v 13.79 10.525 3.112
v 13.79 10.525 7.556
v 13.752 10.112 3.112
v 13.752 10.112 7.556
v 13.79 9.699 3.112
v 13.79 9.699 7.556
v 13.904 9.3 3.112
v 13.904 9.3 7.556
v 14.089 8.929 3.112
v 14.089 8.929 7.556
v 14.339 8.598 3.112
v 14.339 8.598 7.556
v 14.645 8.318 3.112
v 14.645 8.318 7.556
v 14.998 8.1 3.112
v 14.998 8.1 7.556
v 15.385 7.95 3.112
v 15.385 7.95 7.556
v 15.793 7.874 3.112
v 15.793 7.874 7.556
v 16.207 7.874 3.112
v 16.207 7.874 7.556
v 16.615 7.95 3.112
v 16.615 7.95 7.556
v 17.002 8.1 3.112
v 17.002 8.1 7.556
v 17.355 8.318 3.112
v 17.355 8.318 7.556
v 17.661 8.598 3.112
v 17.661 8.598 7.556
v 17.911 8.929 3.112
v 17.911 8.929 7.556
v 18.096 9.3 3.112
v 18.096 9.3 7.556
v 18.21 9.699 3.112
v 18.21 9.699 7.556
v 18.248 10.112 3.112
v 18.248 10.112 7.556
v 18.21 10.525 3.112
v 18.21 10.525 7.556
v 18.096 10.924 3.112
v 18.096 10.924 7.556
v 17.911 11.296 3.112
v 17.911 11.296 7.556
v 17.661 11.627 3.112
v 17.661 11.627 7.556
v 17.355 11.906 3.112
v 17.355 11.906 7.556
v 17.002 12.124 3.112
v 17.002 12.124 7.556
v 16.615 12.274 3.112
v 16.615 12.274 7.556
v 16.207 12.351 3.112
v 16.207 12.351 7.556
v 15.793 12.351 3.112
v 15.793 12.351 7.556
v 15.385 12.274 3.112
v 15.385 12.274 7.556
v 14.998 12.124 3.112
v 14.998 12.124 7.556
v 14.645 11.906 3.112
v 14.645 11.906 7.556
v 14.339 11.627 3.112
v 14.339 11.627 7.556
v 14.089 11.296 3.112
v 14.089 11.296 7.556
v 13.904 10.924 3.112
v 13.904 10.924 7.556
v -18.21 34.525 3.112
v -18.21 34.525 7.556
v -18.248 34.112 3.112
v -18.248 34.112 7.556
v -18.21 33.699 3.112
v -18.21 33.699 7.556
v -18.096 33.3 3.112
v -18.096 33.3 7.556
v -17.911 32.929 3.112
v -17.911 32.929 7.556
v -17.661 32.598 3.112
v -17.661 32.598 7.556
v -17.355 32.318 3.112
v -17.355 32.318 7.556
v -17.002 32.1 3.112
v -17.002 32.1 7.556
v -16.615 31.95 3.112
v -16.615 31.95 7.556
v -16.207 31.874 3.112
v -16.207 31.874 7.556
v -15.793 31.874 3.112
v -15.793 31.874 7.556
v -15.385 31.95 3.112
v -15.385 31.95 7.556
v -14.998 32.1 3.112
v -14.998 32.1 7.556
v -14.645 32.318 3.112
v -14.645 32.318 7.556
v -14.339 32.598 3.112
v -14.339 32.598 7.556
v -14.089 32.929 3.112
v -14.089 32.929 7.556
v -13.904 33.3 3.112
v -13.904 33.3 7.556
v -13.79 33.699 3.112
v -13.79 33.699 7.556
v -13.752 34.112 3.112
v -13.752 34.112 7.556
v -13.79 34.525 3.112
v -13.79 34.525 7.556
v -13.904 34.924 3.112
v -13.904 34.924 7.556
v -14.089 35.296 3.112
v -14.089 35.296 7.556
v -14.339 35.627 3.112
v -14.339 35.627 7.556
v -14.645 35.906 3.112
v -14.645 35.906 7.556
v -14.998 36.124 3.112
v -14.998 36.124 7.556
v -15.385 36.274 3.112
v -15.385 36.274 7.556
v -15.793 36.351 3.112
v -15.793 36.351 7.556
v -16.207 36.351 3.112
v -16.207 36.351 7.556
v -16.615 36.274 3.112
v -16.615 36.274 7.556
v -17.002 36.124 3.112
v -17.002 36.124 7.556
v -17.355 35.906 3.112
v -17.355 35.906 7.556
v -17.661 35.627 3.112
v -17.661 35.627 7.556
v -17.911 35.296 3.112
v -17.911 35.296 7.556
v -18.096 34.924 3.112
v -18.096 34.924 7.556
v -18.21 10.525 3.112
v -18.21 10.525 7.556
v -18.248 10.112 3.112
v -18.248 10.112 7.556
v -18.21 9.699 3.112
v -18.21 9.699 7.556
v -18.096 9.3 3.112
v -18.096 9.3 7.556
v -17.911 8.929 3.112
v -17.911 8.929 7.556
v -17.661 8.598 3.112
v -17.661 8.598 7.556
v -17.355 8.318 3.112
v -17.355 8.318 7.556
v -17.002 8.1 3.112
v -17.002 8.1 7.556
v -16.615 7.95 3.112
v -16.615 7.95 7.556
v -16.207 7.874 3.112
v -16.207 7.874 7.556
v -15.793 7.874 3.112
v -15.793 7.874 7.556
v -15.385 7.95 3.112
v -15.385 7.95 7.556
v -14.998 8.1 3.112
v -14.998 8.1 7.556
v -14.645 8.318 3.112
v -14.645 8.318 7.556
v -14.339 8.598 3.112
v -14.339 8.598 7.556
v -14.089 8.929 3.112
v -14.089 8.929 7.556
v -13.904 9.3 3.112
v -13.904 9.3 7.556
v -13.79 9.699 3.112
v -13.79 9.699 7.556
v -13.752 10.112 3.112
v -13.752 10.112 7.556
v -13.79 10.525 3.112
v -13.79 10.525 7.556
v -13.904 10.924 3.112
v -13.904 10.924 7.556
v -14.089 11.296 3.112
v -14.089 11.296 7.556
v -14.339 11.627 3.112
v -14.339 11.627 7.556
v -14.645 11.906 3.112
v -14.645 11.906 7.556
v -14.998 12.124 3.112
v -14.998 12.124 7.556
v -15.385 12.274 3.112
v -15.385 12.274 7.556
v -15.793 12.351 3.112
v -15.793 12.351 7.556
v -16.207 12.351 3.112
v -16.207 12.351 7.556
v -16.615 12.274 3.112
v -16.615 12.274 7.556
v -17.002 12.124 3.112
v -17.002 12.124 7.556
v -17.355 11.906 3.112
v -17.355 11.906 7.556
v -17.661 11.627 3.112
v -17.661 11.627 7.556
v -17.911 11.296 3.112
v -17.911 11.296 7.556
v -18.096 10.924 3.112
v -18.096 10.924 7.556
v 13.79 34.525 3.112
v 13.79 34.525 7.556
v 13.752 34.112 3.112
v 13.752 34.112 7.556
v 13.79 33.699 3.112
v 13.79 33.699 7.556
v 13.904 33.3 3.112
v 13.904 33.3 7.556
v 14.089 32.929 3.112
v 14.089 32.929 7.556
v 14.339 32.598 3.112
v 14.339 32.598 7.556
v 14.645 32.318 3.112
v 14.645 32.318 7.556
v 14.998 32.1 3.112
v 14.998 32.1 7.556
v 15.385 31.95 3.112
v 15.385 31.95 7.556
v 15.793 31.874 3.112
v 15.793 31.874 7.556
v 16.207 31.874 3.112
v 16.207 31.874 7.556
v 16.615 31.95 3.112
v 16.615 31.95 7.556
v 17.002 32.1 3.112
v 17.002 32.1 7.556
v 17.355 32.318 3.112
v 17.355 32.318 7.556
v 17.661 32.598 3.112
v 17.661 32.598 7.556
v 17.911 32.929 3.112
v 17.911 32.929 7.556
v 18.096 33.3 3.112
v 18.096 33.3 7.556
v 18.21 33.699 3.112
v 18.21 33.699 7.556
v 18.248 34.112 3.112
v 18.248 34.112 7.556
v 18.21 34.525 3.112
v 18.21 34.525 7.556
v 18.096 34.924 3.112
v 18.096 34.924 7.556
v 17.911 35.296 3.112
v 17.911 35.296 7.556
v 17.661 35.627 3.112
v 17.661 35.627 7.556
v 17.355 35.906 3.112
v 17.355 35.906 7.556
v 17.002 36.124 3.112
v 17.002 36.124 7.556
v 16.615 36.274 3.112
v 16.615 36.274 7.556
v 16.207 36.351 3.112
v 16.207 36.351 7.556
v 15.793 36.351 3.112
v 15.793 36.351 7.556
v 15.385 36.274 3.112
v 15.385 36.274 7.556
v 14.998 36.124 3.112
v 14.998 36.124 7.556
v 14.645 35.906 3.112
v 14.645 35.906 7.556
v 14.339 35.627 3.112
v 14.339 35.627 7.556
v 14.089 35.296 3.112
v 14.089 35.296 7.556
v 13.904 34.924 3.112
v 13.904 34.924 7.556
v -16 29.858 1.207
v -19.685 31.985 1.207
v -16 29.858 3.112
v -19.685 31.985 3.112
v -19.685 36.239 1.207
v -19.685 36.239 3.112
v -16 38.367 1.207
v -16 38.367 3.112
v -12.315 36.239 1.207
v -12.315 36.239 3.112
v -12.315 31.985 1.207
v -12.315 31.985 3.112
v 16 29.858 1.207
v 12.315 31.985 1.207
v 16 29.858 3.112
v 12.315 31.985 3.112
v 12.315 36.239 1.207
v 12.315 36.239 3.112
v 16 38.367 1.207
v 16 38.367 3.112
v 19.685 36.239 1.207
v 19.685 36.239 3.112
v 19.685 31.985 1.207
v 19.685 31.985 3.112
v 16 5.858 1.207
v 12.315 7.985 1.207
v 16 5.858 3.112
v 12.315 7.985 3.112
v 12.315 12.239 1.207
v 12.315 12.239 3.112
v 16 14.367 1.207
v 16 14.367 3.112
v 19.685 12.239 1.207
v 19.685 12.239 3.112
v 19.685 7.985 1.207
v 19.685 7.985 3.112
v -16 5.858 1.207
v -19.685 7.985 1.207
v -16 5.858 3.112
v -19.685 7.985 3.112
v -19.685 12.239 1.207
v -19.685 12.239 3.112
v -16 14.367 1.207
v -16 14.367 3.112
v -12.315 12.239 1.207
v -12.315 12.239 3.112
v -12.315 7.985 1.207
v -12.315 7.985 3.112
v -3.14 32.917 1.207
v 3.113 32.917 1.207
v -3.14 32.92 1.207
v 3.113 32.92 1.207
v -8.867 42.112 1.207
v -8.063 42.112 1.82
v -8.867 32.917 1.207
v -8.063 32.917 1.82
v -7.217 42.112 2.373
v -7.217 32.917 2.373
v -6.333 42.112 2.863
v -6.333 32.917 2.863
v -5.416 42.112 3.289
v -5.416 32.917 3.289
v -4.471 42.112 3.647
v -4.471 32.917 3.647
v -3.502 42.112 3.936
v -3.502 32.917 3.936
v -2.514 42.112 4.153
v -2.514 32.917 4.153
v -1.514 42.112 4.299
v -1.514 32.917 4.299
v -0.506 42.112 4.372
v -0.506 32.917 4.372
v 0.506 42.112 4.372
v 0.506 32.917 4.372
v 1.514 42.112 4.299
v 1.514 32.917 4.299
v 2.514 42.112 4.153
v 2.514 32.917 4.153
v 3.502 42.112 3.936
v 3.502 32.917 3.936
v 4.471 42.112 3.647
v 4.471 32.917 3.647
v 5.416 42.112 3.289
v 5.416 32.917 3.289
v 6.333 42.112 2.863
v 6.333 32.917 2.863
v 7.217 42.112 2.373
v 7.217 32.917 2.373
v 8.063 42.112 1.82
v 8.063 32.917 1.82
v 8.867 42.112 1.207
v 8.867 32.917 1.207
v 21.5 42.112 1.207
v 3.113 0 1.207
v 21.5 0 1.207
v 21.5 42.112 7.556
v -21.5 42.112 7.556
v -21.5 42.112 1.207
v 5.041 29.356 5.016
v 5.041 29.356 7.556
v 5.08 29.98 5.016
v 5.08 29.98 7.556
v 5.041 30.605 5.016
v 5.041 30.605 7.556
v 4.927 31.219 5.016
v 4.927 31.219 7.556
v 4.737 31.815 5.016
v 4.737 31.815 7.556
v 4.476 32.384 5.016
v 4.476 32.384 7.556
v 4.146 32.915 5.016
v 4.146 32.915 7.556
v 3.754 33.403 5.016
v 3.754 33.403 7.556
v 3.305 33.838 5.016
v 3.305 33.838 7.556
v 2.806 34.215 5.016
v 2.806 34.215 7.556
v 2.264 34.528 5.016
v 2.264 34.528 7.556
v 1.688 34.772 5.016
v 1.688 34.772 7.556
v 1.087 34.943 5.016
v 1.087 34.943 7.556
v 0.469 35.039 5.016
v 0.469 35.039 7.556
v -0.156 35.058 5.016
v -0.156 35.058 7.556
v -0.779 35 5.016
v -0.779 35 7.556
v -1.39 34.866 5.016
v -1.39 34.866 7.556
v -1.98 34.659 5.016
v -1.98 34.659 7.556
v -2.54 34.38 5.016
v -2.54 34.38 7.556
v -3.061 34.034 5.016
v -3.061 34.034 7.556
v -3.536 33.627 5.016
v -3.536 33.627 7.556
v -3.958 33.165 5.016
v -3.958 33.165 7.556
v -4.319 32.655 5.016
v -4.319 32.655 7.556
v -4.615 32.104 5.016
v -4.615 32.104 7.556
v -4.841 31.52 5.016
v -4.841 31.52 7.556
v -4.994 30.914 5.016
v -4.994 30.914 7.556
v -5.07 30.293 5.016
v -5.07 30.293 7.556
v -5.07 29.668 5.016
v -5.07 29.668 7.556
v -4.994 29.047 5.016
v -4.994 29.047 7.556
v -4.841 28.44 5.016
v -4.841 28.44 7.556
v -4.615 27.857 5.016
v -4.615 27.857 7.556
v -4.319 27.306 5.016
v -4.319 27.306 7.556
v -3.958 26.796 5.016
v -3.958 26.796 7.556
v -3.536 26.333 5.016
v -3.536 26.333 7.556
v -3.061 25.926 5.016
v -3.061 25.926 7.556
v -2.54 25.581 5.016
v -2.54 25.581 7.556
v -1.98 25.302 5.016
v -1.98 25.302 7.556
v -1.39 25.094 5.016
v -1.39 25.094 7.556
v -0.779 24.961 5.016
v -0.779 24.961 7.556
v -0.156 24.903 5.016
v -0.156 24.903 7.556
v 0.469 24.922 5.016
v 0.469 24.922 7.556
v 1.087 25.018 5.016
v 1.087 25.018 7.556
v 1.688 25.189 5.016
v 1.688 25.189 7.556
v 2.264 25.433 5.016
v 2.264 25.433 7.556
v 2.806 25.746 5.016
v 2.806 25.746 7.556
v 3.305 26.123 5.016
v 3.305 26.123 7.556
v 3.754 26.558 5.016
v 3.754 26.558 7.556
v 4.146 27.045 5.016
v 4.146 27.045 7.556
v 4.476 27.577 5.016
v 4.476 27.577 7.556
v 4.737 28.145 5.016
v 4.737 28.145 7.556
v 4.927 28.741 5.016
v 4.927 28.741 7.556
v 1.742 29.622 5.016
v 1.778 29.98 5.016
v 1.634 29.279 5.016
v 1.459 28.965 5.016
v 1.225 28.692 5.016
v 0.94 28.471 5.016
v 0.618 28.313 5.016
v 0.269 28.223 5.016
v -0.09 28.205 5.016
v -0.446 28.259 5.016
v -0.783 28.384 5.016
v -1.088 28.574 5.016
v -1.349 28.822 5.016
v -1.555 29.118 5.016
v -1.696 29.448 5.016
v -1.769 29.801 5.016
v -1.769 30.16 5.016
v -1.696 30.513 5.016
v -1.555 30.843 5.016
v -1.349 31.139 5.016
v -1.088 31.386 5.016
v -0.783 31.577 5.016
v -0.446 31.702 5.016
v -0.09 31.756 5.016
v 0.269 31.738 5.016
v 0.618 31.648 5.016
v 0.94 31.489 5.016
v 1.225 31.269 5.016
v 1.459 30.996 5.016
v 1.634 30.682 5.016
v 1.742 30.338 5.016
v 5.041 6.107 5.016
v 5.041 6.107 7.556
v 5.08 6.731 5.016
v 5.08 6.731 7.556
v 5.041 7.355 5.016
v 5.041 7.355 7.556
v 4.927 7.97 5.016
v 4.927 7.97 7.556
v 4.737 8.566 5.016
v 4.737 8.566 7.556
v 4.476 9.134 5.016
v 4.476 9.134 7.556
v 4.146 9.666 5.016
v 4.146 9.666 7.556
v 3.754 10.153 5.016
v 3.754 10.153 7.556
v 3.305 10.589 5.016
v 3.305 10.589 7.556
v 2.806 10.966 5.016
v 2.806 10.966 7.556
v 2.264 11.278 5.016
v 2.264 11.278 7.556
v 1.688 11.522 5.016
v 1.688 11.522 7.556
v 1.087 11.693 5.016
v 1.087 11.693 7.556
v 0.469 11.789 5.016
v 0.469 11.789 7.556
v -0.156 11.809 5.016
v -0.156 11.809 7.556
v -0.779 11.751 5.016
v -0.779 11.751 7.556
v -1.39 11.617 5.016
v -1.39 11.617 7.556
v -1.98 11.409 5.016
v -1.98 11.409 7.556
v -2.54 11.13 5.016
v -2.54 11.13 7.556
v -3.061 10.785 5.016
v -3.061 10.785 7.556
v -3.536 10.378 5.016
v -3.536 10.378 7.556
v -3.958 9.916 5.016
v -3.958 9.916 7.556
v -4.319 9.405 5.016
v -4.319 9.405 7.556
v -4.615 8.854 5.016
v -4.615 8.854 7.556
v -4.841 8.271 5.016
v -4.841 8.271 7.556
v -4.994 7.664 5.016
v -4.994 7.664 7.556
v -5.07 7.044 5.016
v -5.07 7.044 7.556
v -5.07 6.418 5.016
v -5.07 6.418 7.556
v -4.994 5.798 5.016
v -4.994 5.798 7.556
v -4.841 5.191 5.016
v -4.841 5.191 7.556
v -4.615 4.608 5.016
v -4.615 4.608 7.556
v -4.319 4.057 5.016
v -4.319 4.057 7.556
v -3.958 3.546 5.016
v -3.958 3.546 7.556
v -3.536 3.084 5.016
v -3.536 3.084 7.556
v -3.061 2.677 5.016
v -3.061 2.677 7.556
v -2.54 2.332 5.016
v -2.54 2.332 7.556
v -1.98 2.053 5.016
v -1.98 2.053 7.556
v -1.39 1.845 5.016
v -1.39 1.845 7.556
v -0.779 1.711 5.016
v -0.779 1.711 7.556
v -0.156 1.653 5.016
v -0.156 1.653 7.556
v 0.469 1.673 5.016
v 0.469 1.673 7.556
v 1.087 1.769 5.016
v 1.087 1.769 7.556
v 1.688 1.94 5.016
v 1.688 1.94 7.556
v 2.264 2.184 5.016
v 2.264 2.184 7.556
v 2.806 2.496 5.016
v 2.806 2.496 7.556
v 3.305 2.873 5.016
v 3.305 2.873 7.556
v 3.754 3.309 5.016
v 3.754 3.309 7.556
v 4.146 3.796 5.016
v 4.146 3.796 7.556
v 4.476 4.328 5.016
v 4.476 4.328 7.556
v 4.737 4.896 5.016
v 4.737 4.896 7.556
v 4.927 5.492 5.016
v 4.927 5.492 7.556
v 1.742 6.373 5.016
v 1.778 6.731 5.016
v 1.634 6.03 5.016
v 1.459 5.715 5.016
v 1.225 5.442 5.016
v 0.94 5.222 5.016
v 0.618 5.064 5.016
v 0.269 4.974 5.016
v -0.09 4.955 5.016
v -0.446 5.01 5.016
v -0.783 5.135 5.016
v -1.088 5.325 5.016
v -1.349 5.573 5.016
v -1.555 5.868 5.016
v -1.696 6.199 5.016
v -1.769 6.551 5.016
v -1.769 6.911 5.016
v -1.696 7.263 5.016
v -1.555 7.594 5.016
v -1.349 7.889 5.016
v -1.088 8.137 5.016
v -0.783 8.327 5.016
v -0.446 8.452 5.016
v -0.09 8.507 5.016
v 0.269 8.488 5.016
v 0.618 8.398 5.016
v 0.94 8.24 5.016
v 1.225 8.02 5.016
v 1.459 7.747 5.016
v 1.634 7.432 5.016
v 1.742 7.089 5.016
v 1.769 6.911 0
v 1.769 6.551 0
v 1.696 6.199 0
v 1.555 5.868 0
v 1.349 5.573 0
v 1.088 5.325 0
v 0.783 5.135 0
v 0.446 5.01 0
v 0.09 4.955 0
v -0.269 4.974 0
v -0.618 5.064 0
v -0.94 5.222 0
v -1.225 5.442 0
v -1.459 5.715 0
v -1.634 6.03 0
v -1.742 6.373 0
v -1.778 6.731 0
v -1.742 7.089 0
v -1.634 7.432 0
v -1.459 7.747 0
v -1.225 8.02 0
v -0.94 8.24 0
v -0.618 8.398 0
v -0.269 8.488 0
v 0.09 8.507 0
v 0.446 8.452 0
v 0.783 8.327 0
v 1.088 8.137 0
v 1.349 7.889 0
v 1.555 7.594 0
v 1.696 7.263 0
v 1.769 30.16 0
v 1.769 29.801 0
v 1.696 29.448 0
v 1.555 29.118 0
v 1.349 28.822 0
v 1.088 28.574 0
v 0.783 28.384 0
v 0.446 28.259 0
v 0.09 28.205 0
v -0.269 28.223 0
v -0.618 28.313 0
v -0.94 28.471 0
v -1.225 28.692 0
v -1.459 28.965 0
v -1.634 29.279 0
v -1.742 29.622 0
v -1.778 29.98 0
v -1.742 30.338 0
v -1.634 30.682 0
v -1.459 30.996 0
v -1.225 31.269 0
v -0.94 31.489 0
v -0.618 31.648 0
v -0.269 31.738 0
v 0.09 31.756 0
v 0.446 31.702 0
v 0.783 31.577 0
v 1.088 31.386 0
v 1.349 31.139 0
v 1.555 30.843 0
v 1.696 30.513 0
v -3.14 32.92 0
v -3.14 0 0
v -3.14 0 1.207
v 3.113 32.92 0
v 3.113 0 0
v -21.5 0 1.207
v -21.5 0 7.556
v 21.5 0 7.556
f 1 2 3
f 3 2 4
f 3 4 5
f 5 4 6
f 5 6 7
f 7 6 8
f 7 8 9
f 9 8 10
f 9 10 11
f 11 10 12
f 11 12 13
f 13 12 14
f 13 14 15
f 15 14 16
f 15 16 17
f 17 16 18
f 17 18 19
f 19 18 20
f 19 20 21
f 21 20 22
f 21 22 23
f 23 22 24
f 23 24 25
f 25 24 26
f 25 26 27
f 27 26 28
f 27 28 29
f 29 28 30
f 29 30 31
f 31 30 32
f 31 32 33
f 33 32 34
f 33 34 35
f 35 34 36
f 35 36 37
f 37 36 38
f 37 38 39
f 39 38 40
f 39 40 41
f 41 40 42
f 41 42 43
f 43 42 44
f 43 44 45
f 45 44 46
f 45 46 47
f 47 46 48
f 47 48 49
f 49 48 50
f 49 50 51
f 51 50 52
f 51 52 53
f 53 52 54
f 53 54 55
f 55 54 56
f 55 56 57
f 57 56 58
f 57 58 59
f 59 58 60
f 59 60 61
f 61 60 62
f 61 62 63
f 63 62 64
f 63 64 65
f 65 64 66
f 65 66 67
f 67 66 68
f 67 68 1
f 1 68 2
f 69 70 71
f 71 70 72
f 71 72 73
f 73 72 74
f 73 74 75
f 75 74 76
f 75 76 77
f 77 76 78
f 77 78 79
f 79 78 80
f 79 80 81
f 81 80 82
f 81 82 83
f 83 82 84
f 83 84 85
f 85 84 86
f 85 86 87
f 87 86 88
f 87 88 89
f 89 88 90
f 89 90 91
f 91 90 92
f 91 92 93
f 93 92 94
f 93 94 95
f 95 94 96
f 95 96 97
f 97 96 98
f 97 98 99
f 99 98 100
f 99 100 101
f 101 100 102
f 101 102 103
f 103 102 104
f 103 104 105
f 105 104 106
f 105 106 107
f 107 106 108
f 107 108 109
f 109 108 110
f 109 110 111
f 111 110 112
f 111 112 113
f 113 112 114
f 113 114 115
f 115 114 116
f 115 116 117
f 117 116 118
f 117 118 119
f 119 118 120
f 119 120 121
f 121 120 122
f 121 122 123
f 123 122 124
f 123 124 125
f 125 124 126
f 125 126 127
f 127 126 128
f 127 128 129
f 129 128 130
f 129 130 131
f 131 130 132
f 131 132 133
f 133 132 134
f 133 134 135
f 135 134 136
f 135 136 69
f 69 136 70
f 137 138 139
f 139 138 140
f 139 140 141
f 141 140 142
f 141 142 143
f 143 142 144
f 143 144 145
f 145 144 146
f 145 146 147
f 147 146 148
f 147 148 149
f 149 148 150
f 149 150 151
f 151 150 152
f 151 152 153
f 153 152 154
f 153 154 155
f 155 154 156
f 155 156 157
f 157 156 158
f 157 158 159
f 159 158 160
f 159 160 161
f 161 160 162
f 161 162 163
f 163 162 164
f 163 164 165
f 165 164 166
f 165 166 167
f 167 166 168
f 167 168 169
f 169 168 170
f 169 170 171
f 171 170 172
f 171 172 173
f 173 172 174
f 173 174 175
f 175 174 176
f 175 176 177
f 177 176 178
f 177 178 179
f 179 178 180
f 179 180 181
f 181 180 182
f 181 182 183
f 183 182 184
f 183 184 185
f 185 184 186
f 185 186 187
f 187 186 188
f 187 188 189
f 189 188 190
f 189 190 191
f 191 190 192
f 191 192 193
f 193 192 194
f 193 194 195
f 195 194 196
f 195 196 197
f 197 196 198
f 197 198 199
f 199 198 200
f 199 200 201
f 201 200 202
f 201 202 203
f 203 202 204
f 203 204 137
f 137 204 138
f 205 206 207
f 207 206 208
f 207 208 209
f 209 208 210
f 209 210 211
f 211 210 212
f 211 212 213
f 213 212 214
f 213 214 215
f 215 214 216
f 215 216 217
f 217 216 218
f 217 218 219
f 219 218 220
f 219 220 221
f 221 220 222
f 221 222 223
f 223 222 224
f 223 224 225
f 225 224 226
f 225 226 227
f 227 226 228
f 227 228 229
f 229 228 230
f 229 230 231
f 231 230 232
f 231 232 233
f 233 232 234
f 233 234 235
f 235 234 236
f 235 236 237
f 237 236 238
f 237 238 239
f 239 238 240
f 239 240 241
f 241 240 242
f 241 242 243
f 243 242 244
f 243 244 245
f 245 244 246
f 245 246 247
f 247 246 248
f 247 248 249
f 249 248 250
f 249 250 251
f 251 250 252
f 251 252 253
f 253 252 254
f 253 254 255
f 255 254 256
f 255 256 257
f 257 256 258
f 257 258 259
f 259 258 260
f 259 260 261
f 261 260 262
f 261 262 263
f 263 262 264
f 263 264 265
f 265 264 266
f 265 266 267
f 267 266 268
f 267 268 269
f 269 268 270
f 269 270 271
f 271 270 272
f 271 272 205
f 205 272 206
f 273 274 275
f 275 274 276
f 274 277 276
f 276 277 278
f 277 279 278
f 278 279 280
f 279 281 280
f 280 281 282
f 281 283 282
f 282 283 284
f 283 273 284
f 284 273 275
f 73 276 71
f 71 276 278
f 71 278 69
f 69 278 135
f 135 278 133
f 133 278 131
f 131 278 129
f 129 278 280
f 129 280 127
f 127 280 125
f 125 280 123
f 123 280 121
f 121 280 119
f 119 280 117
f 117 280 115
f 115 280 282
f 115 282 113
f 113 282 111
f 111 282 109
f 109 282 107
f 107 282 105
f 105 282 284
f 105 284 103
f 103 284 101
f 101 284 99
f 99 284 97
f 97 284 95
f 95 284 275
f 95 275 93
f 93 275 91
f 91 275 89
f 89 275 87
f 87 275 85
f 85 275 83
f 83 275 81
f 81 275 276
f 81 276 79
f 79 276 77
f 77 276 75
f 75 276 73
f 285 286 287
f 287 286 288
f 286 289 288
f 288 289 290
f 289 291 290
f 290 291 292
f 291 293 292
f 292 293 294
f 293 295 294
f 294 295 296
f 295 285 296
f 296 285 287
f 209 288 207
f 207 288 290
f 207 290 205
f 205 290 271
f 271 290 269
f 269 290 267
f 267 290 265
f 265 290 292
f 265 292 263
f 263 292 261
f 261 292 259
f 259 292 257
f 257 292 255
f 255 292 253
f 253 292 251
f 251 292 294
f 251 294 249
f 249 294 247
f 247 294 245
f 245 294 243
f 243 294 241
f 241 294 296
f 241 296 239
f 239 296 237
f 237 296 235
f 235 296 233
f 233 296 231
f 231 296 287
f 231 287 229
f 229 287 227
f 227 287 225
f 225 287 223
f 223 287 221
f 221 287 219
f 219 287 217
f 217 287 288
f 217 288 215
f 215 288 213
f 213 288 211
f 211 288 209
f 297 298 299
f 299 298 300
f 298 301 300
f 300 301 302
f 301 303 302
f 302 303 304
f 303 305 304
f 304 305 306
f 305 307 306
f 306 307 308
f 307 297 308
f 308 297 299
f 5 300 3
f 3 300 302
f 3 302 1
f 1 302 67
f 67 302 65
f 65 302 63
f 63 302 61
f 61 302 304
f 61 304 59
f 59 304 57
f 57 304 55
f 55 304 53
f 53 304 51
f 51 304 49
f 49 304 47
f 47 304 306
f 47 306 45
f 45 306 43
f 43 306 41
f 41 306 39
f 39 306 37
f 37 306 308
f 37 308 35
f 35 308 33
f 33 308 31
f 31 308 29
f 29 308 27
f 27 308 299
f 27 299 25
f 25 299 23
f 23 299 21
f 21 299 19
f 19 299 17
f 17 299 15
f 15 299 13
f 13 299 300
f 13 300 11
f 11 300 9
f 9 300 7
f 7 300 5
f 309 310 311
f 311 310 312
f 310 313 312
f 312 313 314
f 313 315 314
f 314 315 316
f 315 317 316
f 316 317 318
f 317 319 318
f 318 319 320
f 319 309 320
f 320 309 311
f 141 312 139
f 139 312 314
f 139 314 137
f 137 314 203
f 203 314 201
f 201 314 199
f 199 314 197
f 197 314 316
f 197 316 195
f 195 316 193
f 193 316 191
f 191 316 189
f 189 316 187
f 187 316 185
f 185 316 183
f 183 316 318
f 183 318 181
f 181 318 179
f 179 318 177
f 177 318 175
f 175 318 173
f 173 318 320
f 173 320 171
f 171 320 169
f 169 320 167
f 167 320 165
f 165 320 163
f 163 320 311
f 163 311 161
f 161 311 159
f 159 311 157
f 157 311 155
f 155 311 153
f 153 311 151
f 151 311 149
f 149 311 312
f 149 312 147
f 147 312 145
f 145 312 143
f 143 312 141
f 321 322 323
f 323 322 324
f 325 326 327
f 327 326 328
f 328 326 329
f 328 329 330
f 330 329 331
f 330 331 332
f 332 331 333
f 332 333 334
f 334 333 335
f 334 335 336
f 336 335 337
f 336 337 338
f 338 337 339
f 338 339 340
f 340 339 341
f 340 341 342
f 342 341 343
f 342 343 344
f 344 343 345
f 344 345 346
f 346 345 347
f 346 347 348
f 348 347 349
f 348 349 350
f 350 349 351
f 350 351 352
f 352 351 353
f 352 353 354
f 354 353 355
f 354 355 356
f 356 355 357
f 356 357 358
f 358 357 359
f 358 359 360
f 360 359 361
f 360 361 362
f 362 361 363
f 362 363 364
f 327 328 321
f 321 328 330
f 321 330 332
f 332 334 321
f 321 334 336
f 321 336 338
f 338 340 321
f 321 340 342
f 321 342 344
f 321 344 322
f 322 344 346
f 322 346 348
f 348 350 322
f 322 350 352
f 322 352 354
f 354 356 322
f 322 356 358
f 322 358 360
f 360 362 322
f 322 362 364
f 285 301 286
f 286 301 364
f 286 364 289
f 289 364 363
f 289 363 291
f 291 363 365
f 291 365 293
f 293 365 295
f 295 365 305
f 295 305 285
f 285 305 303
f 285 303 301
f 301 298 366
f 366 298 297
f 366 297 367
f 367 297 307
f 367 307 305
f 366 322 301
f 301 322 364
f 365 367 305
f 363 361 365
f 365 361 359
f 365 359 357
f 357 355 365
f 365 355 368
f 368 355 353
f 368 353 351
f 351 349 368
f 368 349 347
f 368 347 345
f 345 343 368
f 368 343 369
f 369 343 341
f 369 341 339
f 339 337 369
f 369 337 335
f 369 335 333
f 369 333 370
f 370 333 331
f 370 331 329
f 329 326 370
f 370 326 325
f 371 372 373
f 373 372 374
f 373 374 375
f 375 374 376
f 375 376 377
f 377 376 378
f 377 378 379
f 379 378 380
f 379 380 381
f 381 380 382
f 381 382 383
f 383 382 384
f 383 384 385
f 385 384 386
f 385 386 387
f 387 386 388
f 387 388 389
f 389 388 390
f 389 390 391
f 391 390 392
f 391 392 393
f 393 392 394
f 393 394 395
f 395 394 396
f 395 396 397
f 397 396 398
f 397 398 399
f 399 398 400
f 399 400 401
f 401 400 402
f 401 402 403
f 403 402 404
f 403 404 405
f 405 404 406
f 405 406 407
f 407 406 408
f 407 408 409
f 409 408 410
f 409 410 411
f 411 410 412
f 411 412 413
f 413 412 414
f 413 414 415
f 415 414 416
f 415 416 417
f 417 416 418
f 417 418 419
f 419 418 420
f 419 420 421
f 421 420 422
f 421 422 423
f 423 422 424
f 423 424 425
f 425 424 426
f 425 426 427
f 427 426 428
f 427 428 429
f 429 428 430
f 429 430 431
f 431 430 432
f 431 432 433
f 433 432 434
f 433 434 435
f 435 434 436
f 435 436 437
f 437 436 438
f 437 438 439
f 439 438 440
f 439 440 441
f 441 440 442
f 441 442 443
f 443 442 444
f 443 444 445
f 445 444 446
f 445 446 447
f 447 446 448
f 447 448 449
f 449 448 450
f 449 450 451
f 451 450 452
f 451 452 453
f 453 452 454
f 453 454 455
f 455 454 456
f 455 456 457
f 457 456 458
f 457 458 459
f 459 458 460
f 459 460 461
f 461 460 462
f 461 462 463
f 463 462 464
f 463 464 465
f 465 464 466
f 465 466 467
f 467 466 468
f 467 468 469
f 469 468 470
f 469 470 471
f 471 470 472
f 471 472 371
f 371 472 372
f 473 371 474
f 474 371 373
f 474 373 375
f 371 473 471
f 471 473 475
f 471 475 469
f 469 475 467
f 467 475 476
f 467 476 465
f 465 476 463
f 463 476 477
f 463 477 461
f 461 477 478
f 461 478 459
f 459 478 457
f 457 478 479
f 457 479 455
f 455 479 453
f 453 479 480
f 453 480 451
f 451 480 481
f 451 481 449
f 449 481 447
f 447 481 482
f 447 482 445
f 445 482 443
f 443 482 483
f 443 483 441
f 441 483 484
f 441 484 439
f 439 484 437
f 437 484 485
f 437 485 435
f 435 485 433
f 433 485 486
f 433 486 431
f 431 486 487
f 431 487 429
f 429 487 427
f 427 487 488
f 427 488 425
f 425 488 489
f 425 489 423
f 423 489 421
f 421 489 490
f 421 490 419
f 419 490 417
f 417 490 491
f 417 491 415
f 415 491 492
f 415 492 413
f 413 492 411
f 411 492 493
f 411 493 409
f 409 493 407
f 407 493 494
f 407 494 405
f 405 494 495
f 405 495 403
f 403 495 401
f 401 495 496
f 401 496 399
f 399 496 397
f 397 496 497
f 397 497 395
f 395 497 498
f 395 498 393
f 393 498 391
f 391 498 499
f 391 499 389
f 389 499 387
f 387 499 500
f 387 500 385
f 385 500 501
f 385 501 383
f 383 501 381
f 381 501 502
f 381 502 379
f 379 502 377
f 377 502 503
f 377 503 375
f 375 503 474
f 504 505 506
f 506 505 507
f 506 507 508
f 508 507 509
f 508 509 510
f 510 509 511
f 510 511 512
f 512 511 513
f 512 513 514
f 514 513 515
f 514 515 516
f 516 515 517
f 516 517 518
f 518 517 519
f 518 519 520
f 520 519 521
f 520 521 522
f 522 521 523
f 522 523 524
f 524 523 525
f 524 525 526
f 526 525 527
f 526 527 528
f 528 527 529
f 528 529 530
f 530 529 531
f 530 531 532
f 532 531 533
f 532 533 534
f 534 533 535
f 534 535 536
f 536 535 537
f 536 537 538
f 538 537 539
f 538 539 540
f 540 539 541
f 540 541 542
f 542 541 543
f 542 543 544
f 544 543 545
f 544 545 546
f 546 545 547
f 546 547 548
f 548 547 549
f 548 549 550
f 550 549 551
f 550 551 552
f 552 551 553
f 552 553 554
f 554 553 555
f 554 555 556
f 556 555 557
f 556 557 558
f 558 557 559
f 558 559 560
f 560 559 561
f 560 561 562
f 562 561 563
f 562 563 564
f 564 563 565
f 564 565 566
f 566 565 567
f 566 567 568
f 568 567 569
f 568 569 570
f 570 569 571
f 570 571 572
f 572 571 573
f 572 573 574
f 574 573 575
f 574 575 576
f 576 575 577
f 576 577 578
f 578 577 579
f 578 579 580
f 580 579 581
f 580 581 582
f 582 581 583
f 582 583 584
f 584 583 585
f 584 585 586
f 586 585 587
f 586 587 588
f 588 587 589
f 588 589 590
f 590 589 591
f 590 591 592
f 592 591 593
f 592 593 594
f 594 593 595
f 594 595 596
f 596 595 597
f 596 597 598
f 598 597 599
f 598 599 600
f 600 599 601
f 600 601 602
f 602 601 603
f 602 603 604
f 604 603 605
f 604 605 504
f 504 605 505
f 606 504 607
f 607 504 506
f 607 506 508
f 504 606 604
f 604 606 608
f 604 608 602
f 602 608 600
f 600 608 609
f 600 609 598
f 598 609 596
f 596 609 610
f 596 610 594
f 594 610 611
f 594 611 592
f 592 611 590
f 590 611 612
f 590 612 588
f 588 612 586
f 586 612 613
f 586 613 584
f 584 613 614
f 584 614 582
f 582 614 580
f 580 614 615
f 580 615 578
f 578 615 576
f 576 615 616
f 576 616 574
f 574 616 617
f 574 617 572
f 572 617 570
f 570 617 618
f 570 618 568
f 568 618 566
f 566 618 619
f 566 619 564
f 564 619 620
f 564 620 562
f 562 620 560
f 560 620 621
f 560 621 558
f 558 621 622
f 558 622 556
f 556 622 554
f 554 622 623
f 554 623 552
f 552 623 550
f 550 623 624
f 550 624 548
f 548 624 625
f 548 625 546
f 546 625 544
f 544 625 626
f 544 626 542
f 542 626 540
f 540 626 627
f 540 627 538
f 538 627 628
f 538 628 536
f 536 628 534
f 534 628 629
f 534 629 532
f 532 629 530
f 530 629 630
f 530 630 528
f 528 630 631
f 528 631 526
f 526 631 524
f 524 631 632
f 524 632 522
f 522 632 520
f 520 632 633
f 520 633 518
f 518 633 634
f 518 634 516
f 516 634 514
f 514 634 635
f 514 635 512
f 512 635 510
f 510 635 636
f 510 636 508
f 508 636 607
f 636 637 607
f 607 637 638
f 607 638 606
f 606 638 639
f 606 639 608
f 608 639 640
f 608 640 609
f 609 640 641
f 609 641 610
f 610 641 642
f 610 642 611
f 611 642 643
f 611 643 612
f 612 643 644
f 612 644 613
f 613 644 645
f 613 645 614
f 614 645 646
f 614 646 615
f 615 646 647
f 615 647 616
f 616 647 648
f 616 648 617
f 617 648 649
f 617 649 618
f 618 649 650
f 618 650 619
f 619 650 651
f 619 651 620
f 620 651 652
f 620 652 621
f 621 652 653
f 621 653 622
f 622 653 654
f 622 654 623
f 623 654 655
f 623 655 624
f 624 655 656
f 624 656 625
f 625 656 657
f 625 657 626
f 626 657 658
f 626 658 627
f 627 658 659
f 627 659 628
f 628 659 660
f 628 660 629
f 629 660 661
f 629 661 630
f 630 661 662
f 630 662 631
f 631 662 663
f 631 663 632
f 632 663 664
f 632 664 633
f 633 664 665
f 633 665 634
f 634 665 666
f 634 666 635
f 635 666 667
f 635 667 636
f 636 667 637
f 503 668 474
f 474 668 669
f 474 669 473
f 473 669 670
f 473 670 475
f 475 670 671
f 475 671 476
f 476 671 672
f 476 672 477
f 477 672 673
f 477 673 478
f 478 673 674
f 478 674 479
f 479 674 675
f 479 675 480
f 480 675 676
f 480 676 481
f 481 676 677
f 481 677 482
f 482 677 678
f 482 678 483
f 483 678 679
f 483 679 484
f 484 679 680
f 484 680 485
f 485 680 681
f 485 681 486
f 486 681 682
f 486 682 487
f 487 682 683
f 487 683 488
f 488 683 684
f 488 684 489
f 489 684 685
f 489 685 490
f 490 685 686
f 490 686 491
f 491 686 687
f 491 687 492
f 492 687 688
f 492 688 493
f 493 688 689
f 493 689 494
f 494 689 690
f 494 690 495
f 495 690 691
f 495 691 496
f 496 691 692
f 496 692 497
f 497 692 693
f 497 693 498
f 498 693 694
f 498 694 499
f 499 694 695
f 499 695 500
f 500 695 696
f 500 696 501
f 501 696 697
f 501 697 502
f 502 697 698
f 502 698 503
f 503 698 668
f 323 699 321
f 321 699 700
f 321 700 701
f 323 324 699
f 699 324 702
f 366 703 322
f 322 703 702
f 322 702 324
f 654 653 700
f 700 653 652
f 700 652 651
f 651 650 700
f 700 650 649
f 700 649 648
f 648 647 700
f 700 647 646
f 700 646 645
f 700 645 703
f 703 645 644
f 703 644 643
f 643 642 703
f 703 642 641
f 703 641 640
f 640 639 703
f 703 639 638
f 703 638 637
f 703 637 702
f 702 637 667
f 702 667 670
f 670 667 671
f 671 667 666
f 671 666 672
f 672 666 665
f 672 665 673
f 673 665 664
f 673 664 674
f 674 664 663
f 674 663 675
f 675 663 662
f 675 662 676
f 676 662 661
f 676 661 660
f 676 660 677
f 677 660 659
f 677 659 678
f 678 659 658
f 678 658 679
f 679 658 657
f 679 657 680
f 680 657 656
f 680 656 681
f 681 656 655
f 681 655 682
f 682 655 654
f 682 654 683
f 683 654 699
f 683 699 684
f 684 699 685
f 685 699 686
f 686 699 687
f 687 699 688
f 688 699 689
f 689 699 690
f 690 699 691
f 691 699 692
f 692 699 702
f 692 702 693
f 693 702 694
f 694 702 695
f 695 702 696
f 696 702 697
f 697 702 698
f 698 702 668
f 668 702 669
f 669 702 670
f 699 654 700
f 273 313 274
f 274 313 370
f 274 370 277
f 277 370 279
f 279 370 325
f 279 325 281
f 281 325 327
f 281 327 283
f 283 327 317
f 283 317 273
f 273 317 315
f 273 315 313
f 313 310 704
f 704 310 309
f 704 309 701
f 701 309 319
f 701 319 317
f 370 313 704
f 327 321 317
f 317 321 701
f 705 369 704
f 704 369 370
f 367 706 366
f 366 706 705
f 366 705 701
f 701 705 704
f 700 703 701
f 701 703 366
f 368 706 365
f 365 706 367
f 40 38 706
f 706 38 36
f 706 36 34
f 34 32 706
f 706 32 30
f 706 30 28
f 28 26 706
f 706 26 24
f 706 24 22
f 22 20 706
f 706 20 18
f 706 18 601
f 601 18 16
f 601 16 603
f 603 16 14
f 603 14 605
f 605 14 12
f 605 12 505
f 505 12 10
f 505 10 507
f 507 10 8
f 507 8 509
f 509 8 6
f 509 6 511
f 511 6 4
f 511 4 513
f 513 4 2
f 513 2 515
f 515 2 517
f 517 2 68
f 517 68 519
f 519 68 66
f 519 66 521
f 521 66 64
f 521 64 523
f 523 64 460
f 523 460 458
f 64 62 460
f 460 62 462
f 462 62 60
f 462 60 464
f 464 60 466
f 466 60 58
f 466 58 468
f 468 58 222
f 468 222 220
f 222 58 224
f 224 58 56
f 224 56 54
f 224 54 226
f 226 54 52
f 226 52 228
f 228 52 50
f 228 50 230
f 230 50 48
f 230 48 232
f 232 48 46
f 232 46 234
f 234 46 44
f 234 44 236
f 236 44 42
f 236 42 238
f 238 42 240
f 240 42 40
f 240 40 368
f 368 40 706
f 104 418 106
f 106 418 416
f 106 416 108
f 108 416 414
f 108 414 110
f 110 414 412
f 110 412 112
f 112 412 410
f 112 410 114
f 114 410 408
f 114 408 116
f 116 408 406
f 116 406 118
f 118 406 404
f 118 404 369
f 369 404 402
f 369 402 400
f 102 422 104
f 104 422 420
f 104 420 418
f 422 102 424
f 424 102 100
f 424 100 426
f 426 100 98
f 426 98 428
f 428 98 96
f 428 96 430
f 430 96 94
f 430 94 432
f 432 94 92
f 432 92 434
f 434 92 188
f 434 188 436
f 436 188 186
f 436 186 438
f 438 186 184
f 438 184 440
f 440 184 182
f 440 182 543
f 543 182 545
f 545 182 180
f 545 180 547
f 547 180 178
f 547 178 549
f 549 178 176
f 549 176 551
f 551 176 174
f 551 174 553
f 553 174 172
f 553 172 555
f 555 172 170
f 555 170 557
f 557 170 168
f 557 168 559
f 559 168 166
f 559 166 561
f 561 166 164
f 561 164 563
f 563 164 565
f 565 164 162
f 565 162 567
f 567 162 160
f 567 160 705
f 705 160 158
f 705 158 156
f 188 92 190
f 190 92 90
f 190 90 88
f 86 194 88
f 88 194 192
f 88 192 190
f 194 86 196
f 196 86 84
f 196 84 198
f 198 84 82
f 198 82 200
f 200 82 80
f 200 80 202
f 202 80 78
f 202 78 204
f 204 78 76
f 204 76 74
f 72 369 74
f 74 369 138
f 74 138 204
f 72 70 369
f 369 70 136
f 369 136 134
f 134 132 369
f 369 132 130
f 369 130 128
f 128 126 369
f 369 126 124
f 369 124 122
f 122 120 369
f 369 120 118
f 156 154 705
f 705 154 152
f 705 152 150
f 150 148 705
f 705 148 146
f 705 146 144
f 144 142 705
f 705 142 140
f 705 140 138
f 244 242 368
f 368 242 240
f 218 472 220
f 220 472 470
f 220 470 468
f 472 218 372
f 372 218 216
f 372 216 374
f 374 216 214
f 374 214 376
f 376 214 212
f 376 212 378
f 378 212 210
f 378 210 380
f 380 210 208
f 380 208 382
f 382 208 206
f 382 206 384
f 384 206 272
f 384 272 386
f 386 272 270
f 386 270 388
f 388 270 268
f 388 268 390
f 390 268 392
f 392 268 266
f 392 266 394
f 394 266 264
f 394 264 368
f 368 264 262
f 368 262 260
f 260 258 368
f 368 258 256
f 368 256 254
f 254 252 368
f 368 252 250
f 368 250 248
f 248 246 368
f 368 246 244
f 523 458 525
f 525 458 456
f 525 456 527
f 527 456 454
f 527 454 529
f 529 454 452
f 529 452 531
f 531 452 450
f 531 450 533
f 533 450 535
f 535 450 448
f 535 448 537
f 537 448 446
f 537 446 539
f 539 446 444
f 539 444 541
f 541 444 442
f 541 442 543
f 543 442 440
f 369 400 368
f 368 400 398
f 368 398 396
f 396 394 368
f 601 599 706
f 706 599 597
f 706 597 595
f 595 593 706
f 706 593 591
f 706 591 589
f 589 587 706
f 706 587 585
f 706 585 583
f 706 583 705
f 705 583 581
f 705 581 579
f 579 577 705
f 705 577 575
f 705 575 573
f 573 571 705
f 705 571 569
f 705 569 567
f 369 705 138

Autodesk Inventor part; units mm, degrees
ref_plane "YZ Plane" through (0, 0, 0) normal (1, 0, 0) x (0, 1, 0)
ref_plane "XZ Plane" through (0, 0, 0) normal (0, 1, 0) x (-1, 0, 0)
ref_plane "XY Plane" through (0, 0, 0) normal (0, 0, 1) x (1, 0, 0)
ref_plane "Work Plane7" through (21.5, 42.1122, 7.5565) normal (0, 0, -1) x (0, 1, 0)
sketch "Sketch4" plane through (21.5, 42.1122, 7.5565) normal (0, 0, -1) x (0, 1, 0)
  line L0 (-42.1122, -17.69) -> (-42.1122, -25.31) construction
  line L1 (0, 0) -> (0, -43) construction
  line L2 (-528, -43) -> (0, -43) construction
  line L3 (-528, 0) -> (0, 0) construction
  line L4 (-42.1122, -43) -> (0, -43)
  line L5 (0, -43) -> (0, 0)
  line L6 (0, 0) -> (-42.1122, 0)
  line L7 (-42.1122, 0) -> (-42.1122, -43)
  circle A0 centre (-8, -5.5) radius 2
  circle A1 centre (-32, -5.5) radius 2
  circle A2 centre (-8, -37.5) radius 2
  circle A3 centre (-32, -37.5) radius 2
  circle A4 centre (-8, -37.5) radius 2.2479
  circle A5 centre (-8, -5.5) radius 2.2479
  circle A6 centre (-32, -37.5) radius 2.2479
  point P0 (-42.1122, -21.5)
  dimension "d41" = 4.4958
  dimension "d42" = 4.4958
  dimension "d43" = 4.4958
extrude "Extrusion4" add sketch "Sketch4" along normal blind 6.35 contours L7 L6 L5 L4 | A4 | A5 | A6
ref_plane "Work Plane6" through (0, 0, 0) normal (0, 0, 1) x (1, 0, 0)
sketch "Sketch5" plane through (0, 0, 0) normal (0, 0, 1) x (1, 0, 0)
  line L0 (3.1132, 0) -> (3.1132, 33.02) construction
  line L1 (-3.1132, 0) -> (-3.1132, 33.02) construction
  line L2 (3.14, 32.92) -> (-3.14, 32.92) construction
  line L3 (-21.5, 0) -> (21.5, 0) construction
  line L4 (3.1132, 0) -> (-3.14, 0)
  line L5 (-3.14, 0) -> (-3.14, 32.92)
  line L6 (-3.14, 32.92) -> (3.1132, 32.92)
  line L7 (3.1132, 32.92) -> (3.1132, 0)
  arc A0 (-0.0115, 8.4836) -> (1.2335, 7.976) centre (0, 6.731) ccw construction
  spline S0 degree 3 poles (-3.9963, 27.1983) (-3.9282, 27.0439) (-3.8705, 26.8672) (-3.7787, 26.4733) (-3.747, 26.2579) (-3.7229, 25.8912) (-3.7161, 25.6578) (-3.7657, 25.2017) (-3.8042, 25.0235) (-3.9064, 24.7384) (-3.9674, 24.6297) (-4.0735, 24.5156) (-4.1125, 24.4855) (-4.225, 24.4328) (-4.3003, 24.4339) (-4.4555, 24.5079) (-4.5339, 24.5853) (-4.6625, 24.7855) (-4.7303, 24.9172) (-4.8354, 25.2648) (-4.8698, 25.4348) (-4.9129, 25.8035) (-4.9196, 25.9997) (-4.906, 26.2838) (-4.8978, 26.3737) (-4.8628, 26.6198) (-4.8272, 26.7652) (-4.7302, 27.0244) (-4.6681, 27.1326) (-4.5976, 27.2088) knots 0.000001 0.000001 0.000001 0.000001 0.061283 0.061283 0.126502 0.126502 0.171802 0.171802 0.206523 0.206523 0.238722 0.238722 0.255636 0.255636 0.285543 0.285543 0.317605 0.317605 0.342807 0.342807 0.362438 0.362438 0.383231 0.383231 0.393319 0.393319 0.411548 0.411548 0.431083 0.431083 0.431083 0.431083 construction
  circle A1 centre (0, 6.731) radius 1.778 construction
  circle A2 centre (-0.0134, 32.92) radius 1.778 construction
  point P0 (0, 0)
  dimension "d10" = 3.556
  dimension "d11" = 3.556
extrude "Extrusion5" add sketch "Sketch5" along normal up to surface (1.2065 mm away)
sketch "Sketch6" plane through (21.5, 42.1122, 7.5565) normal (0, 0, 1) x (1, 0, 0)
  arc A0 (-21.5115, -33.6287) -> (-20.2665, -34.1362) centre (-21.5, -35.3812) ccw construction
  arc A1 (-21.5115, -10.3793) -> (-20.2665, -10.8868) centre (-21.5, -12.1318) ccw construction
  point P0 (-21.5, -42.1122)
hole "Hole2" at (0, 6.731, 7.5565) at (0, 29.9804, 7.5565) direction (0, 0, -1) diameter 3.556 end through all
ref_plane "Work Plane8" through (21.5, 42.1122, 7.5565) normal (0, 0, 1) x (1, 0, 0)
sketch "Sketch7" plane through (21.5, 42.1122, 7.5565) normal (0, 0, 1) x (1, 0, 0)
  circle A0 centre (-21.5, -12.1318) radius 1.778 projected
  circle A1 centre (-21.5, -12.1318) radius 5.08
  circle A2 centre (-21.5, -35.3812) radius 1.778 projected
  circle A3 centre (-21.5, -35.3812) radius 5.08
  point P0 (-21.5, -42.1122)
  dimension "d28" = 10.16
  dimension "d29" = 10.16
extrude "Extrusion6" cut sketch "Sketch7" against normal blind 2.54
sketch "Sketch8" plane through (-21.5, 42.1122, 7.5565) normal (0, 1, 0) x (1, 0, 0)
  circle A0 centre (21.5, 17.145) radius 3.24 construction
  arc A1 (12.6327, 6.35) -> (30.3673, 6.35) centre (21.5, 17.145) ccw
  line L0 (0, 6.35) -> (43, 6.35) projected
  line L1 (12.6327, 6.35) -> (30.3673, 6.35)
  point P0 (21.5, 7.5565)
  dimension "d32" = 27.94
extrude "Extrusion7" cut sketch "Sketch8" against normal blind 9.1948
sketch "Sketch9" plane through (21.5, 42.1122, 1.2065) normal (0, 0, -1) x (-1, 0, 0)
  circle A0 centre (37.5, -8) radius 2 construction
  circle A1 centre (37.5, -8) radius 4.2545 construction
  circle A2 centre (37.5, -32) radius 2 construction
  circle A3 centre (37.5, -32) radius 4.2545 construction
  circle A4 centre (5.5, -8) radius 2 construction
  circle A5 centre (5.5, -8) radius 4.2545 construction
  circle A6 centre (5.5, -32) radius 2 construction
  circle A7 centre (5.5, -32) radius 4.2545 construction
  line L0 (5.5, -12.2545) -> (1.8155, -10.1272)
  line L1 (1.8155, -10.1272) -> (1.8155, -5.8727)
  line L2 (1.8155, -5.8727) -> (5.5, -3.7455)
  line L3 (5.5, -3.7455) -> (9.1845, -5.8727)
  line L4 (9.1845, -5.8727) -> (9.1845, -10.1272)
  line L5 (9.1845, -10.1272) -> (5.5, -12.2545)
  line L6 (5.5, -36.2545) -> (1.8155, -34.1272)
  line L7 (1.8155, -34.1272) -> (1.8155, -29.8727)
  line L8 (1.8155, -29.8727) -> (5.5, -27.7455)
  line L9 (5.5, -27.7455) -> (9.1845, -29.8727)
  line L10 (9.1845, -29.8727) -> (9.1845, -34.1272)
  line L11 (9.1845, -34.1272) -> (5.5, -36.2545)
  line L12 (37.5, -12.2545) -> (33.8155, -10.1272)
  line L13 (33.8155, -10.1272) -> (33.8155, -5.8727)
  line L14 (33.8155, -5.8727) -> (37.5, -3.7455)
  line L15 (37.5, -3.7455) -> (41.1845, -5.8727)
  line L16 (41.1845, -5.8727) -> (41.1845, -10.1272)
  line L17 (41.1845, -10.1272) -> (37.5, -12.2545)
  line L18 (37.5, -36.2545) -> (33.8155, -34.1272)
  line L19 (33.8155, -34.1272) -> (33.8155, -29.8727)
  line L20 (33.8155, -29.8727) -> (37.5, -27.7455)
  line L21 (37.5, -27.7455) -> (41.1845, -29.8727)
  line L22 (41.1845, -29.8727) -> (41.1845, -34.1272)
  line L23 (41.1845, -34.1272) -> (37.5, -36.2545)
  point P0 (21.5, -42.1122)
  dimension "d35" = 8.509
  dimension "d36" = 8.509
  dimension "d37" = 8.509
  dimension "d38" = 8.509
extrude "Extrusion8" cut sketch "Sketch9" against normal blind 1.905
sketch "Sketch10" plane through (21.5, 42.1122, 7.5565) normal (0, 0, 1) x (1, 0, 0)
  circle A0 centre (-37.5, -32) radius 2 projected
  circle A1 centre (-37.5, -32) radius 2.2479
  circle A2 centre (-5.5, -32) radius 2 projected
  circle A3 centre (-5.5, -32) radius 2.2479
  circle A4 centre (-37.5, -8) radius 2 projected
  circle A5 centre (-37.5, -8) radius 2.2479
  circle A6 centre (-5.5, -8) radius 2 projected
  circle A7 centre (-5.5, -8) radius 2.2479
  point P0 (-21.5, -42.1122)
  dimension "d44" = 4.4958
  dimension "d45" = 4.4958
  dimension "d46" = 4.4958
  dimension "d47" = 4.4958
hole "Hole3" at (-16, 34.1122, 7.5565) at (-16, 10.1122, 7.5565) at (16, 10.1122, 7.5565) at (16, 34.1122, 7.5565) direction (0, 0, -1) diameter 4.4958 end through all
properties part number "LeadScrewNutCouplerForTrussHeadScrew"
